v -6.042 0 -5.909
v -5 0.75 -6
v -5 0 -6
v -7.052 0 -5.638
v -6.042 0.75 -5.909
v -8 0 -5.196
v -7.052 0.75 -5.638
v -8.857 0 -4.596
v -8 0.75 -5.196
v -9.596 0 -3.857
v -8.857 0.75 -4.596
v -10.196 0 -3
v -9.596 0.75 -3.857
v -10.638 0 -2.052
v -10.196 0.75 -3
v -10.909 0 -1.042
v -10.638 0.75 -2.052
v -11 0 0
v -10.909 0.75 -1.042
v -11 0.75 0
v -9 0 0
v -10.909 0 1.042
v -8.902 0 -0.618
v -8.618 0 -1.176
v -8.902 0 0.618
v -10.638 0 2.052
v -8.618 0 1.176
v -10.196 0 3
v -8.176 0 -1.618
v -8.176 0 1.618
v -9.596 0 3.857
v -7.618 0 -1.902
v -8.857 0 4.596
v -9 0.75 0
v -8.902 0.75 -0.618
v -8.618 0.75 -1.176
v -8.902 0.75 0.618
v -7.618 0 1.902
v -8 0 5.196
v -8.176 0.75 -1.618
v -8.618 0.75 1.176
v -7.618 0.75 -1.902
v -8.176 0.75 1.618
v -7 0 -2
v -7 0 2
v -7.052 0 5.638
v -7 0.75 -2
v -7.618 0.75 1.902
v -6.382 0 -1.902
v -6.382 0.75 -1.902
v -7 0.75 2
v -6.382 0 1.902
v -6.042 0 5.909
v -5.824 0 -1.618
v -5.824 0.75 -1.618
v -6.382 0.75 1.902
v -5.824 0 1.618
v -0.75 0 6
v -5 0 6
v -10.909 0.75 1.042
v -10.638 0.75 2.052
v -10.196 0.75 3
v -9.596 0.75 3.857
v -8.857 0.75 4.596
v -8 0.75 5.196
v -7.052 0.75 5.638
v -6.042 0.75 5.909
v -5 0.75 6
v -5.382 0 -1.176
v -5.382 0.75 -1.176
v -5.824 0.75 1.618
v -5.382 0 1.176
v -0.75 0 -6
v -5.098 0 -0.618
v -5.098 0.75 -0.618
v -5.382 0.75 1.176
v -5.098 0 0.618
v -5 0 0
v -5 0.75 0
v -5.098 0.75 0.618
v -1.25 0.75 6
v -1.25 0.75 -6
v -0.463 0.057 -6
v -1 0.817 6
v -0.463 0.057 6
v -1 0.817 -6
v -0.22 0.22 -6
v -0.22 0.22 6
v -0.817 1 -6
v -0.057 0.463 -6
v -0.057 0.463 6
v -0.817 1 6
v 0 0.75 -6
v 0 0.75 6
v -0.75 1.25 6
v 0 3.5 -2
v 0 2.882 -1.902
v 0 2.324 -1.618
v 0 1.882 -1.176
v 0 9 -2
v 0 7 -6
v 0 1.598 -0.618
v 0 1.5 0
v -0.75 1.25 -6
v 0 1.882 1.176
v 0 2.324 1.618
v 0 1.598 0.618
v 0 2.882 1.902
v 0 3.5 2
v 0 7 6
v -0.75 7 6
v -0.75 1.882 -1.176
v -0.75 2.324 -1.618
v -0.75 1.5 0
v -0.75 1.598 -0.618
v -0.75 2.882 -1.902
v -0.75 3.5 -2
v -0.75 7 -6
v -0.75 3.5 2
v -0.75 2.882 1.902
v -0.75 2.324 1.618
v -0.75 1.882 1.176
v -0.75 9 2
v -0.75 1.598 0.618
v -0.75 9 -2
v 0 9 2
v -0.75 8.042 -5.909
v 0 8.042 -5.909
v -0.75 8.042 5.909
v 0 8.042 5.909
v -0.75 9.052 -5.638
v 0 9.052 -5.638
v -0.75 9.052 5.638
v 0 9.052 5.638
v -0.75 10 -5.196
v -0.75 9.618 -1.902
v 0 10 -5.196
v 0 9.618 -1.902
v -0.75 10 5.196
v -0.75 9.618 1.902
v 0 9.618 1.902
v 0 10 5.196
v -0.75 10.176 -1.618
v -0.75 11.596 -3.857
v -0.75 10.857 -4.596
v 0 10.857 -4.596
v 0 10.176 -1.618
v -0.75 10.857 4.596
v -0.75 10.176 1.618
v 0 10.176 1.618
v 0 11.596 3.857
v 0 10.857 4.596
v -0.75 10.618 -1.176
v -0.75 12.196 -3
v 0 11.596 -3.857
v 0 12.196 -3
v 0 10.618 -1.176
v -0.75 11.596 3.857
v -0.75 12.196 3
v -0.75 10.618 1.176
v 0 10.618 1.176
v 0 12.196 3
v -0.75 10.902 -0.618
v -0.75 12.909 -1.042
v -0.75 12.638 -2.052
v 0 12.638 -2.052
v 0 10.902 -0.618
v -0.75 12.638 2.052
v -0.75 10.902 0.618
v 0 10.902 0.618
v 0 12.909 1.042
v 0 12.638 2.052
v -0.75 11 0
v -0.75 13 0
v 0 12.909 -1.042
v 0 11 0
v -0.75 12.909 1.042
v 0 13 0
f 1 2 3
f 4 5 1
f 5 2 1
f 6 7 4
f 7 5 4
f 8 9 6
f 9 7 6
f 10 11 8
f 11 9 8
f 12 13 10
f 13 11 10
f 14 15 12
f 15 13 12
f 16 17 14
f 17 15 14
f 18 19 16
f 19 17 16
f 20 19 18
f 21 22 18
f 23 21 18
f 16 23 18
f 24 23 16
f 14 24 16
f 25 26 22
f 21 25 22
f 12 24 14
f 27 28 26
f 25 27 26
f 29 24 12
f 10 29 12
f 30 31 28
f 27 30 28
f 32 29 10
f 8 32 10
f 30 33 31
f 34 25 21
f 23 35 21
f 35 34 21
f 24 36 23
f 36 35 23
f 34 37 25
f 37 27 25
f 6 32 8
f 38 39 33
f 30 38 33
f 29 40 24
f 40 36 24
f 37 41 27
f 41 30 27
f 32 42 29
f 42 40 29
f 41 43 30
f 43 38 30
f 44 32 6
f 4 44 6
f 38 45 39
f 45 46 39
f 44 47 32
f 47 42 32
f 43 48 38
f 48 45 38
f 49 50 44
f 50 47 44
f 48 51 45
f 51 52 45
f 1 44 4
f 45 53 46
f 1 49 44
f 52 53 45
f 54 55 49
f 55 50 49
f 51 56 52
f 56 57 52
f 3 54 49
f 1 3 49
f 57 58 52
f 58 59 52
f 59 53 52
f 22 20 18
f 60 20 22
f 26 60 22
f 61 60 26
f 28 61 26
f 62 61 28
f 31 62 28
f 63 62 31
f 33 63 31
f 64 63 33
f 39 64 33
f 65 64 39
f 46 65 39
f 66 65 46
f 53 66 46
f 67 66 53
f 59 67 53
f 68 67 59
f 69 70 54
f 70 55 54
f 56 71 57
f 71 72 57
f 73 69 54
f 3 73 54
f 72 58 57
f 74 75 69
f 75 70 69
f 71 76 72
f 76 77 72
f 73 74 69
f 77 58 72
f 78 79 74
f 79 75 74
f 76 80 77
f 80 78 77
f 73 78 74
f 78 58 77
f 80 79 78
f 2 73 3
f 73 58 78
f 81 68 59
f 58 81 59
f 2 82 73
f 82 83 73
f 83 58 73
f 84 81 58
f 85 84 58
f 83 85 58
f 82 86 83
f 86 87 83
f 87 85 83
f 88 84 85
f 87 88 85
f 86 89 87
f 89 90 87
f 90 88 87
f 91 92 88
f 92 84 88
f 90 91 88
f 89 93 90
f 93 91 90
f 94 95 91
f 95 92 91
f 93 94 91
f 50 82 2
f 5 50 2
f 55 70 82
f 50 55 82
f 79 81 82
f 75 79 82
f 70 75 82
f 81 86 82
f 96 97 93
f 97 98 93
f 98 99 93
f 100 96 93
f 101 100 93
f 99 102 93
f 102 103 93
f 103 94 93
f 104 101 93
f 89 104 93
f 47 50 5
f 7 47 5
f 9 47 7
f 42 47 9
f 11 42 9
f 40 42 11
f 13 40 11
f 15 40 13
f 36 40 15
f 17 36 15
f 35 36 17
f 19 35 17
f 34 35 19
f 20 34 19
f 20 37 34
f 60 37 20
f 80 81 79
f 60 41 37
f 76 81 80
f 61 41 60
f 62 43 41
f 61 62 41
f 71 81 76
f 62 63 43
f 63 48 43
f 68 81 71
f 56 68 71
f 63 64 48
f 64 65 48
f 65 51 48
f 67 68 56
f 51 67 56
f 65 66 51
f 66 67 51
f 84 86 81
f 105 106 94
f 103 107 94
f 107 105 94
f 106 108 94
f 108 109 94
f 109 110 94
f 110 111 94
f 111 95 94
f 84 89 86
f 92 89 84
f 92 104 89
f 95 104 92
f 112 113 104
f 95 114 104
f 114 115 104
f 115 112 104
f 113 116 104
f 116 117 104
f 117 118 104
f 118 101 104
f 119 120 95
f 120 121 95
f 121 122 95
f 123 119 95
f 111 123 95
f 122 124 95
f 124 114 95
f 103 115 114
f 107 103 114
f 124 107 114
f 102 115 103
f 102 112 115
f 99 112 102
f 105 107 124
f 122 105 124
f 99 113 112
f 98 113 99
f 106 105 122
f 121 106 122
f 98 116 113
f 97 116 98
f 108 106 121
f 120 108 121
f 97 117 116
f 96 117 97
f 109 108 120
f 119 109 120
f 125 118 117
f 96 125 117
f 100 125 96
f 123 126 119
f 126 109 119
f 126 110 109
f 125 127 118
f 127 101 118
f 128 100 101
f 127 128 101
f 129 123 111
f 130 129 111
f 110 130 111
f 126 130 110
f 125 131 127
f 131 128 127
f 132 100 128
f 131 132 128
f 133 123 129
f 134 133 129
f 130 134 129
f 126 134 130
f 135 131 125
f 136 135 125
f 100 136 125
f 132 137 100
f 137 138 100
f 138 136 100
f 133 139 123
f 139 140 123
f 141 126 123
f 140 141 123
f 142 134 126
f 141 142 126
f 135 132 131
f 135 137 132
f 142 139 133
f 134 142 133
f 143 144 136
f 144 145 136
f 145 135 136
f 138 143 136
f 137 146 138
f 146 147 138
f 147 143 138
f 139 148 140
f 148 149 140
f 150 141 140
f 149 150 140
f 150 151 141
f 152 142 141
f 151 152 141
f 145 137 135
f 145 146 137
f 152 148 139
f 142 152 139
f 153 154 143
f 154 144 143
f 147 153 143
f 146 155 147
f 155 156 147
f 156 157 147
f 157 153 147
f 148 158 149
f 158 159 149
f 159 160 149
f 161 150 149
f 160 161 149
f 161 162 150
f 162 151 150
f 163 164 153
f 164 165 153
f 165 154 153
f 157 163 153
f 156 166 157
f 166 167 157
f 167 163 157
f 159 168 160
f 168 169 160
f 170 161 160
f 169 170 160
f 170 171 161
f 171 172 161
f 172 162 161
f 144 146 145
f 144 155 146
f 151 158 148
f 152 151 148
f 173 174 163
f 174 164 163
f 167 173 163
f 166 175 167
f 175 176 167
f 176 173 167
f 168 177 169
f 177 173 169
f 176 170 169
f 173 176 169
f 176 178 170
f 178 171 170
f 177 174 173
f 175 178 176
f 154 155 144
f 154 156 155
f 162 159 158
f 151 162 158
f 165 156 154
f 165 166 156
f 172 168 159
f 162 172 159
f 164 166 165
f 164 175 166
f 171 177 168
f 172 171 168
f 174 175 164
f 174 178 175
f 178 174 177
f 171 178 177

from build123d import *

# Parameters (mm, degrees)
ESTRUSIONE_SOTTILE1_DEPTH = 6
RACCORDO3_R               = 6
SCHIZZO4_R                = 2
TAGLIO_ESTRUSIONE1_DEPTH  = 0.75
RACCORDO1_R               = 0.75
RACCORDO2_R               = 0.5
TAGLIO_ESTRUSIONE2_DEPTH  = 0.75


with BuildPart() as part:
    # Schizzo1 → Estrusione-Sottile1 (new, symmetric)
    with BuildSketch(Plane.XY):
        Polygon((0, 13), (0, 0), (-11, 0), (-11, 0.75), (-0.75, 0.75), (-0.75, 13), align=None)
    extrude(amount=ESTRUSIONE_SOTTILE1_DEPTH, both=True)

    # Raccordo3
    raccordo3_edges = [part.edges().sort_by_distance(p)[0] for p in [
        (-11, 0.375, 6),
        (-11, 0.375, -6),
        (-0.375, 13, -6),
        (-0.375, 13, 6),
    ]]
    fillet(raccordo3_edges, radius=RACCORDO3_R - 0.0001)  # a hair under: the kernel refuses the full size

    # Schizzo4 → Taglio-Estrusione1 (cut)
    with BuildSketch(Plane(origin=(0, 0.75, 0), x_dir=(1, 0, 0), z_dir=(0, 1, 0))):
        with Locations(Location((-7, 0, 0), (0, 0, 180))):
            Circle(SCHIZZO4_R)
    extrude(amount=-TAGLIO_ESTRUSIONE1_DEPTH, mode=Mode.SUBTRACT)

    # Raccordo1
    raccordo1_edges = [part.edges().sort_by_distance(p)[0] for p in [
        (0, 0, 0),
    ]]
    fillet(raccordo1_edges, radius=RACCORDO1_R)

    # Raccordo2
    raccordo2_edges = [part.edges().sort_by_distance(p)[0] for p in [
        (-0.75, 0.75, 0),
    ]]
    fillet(raccordo2_edges, radius=RACCORDO2_R)

    # Schizzo5 → Taglio-Estrusione2 (cut)
    with BuildSketch(Plane.ZY.offset(0.75)):
        with BuildLine():
            Line((2, 9), (2, 3.5))
            ThreePointArc((2, 3.5), (0, 1.5), (-2, 3.5))
            Line((-2, 3.5), (-2, 9))
            ThreePointArc((-2, 9), (0, 11), (2, 9))
        make_face()
    extrude(amount=-TAGLIO_ESTRUSIONE2_DEPTH, mode=Mode.SUBTRACT)


solid = part.part
